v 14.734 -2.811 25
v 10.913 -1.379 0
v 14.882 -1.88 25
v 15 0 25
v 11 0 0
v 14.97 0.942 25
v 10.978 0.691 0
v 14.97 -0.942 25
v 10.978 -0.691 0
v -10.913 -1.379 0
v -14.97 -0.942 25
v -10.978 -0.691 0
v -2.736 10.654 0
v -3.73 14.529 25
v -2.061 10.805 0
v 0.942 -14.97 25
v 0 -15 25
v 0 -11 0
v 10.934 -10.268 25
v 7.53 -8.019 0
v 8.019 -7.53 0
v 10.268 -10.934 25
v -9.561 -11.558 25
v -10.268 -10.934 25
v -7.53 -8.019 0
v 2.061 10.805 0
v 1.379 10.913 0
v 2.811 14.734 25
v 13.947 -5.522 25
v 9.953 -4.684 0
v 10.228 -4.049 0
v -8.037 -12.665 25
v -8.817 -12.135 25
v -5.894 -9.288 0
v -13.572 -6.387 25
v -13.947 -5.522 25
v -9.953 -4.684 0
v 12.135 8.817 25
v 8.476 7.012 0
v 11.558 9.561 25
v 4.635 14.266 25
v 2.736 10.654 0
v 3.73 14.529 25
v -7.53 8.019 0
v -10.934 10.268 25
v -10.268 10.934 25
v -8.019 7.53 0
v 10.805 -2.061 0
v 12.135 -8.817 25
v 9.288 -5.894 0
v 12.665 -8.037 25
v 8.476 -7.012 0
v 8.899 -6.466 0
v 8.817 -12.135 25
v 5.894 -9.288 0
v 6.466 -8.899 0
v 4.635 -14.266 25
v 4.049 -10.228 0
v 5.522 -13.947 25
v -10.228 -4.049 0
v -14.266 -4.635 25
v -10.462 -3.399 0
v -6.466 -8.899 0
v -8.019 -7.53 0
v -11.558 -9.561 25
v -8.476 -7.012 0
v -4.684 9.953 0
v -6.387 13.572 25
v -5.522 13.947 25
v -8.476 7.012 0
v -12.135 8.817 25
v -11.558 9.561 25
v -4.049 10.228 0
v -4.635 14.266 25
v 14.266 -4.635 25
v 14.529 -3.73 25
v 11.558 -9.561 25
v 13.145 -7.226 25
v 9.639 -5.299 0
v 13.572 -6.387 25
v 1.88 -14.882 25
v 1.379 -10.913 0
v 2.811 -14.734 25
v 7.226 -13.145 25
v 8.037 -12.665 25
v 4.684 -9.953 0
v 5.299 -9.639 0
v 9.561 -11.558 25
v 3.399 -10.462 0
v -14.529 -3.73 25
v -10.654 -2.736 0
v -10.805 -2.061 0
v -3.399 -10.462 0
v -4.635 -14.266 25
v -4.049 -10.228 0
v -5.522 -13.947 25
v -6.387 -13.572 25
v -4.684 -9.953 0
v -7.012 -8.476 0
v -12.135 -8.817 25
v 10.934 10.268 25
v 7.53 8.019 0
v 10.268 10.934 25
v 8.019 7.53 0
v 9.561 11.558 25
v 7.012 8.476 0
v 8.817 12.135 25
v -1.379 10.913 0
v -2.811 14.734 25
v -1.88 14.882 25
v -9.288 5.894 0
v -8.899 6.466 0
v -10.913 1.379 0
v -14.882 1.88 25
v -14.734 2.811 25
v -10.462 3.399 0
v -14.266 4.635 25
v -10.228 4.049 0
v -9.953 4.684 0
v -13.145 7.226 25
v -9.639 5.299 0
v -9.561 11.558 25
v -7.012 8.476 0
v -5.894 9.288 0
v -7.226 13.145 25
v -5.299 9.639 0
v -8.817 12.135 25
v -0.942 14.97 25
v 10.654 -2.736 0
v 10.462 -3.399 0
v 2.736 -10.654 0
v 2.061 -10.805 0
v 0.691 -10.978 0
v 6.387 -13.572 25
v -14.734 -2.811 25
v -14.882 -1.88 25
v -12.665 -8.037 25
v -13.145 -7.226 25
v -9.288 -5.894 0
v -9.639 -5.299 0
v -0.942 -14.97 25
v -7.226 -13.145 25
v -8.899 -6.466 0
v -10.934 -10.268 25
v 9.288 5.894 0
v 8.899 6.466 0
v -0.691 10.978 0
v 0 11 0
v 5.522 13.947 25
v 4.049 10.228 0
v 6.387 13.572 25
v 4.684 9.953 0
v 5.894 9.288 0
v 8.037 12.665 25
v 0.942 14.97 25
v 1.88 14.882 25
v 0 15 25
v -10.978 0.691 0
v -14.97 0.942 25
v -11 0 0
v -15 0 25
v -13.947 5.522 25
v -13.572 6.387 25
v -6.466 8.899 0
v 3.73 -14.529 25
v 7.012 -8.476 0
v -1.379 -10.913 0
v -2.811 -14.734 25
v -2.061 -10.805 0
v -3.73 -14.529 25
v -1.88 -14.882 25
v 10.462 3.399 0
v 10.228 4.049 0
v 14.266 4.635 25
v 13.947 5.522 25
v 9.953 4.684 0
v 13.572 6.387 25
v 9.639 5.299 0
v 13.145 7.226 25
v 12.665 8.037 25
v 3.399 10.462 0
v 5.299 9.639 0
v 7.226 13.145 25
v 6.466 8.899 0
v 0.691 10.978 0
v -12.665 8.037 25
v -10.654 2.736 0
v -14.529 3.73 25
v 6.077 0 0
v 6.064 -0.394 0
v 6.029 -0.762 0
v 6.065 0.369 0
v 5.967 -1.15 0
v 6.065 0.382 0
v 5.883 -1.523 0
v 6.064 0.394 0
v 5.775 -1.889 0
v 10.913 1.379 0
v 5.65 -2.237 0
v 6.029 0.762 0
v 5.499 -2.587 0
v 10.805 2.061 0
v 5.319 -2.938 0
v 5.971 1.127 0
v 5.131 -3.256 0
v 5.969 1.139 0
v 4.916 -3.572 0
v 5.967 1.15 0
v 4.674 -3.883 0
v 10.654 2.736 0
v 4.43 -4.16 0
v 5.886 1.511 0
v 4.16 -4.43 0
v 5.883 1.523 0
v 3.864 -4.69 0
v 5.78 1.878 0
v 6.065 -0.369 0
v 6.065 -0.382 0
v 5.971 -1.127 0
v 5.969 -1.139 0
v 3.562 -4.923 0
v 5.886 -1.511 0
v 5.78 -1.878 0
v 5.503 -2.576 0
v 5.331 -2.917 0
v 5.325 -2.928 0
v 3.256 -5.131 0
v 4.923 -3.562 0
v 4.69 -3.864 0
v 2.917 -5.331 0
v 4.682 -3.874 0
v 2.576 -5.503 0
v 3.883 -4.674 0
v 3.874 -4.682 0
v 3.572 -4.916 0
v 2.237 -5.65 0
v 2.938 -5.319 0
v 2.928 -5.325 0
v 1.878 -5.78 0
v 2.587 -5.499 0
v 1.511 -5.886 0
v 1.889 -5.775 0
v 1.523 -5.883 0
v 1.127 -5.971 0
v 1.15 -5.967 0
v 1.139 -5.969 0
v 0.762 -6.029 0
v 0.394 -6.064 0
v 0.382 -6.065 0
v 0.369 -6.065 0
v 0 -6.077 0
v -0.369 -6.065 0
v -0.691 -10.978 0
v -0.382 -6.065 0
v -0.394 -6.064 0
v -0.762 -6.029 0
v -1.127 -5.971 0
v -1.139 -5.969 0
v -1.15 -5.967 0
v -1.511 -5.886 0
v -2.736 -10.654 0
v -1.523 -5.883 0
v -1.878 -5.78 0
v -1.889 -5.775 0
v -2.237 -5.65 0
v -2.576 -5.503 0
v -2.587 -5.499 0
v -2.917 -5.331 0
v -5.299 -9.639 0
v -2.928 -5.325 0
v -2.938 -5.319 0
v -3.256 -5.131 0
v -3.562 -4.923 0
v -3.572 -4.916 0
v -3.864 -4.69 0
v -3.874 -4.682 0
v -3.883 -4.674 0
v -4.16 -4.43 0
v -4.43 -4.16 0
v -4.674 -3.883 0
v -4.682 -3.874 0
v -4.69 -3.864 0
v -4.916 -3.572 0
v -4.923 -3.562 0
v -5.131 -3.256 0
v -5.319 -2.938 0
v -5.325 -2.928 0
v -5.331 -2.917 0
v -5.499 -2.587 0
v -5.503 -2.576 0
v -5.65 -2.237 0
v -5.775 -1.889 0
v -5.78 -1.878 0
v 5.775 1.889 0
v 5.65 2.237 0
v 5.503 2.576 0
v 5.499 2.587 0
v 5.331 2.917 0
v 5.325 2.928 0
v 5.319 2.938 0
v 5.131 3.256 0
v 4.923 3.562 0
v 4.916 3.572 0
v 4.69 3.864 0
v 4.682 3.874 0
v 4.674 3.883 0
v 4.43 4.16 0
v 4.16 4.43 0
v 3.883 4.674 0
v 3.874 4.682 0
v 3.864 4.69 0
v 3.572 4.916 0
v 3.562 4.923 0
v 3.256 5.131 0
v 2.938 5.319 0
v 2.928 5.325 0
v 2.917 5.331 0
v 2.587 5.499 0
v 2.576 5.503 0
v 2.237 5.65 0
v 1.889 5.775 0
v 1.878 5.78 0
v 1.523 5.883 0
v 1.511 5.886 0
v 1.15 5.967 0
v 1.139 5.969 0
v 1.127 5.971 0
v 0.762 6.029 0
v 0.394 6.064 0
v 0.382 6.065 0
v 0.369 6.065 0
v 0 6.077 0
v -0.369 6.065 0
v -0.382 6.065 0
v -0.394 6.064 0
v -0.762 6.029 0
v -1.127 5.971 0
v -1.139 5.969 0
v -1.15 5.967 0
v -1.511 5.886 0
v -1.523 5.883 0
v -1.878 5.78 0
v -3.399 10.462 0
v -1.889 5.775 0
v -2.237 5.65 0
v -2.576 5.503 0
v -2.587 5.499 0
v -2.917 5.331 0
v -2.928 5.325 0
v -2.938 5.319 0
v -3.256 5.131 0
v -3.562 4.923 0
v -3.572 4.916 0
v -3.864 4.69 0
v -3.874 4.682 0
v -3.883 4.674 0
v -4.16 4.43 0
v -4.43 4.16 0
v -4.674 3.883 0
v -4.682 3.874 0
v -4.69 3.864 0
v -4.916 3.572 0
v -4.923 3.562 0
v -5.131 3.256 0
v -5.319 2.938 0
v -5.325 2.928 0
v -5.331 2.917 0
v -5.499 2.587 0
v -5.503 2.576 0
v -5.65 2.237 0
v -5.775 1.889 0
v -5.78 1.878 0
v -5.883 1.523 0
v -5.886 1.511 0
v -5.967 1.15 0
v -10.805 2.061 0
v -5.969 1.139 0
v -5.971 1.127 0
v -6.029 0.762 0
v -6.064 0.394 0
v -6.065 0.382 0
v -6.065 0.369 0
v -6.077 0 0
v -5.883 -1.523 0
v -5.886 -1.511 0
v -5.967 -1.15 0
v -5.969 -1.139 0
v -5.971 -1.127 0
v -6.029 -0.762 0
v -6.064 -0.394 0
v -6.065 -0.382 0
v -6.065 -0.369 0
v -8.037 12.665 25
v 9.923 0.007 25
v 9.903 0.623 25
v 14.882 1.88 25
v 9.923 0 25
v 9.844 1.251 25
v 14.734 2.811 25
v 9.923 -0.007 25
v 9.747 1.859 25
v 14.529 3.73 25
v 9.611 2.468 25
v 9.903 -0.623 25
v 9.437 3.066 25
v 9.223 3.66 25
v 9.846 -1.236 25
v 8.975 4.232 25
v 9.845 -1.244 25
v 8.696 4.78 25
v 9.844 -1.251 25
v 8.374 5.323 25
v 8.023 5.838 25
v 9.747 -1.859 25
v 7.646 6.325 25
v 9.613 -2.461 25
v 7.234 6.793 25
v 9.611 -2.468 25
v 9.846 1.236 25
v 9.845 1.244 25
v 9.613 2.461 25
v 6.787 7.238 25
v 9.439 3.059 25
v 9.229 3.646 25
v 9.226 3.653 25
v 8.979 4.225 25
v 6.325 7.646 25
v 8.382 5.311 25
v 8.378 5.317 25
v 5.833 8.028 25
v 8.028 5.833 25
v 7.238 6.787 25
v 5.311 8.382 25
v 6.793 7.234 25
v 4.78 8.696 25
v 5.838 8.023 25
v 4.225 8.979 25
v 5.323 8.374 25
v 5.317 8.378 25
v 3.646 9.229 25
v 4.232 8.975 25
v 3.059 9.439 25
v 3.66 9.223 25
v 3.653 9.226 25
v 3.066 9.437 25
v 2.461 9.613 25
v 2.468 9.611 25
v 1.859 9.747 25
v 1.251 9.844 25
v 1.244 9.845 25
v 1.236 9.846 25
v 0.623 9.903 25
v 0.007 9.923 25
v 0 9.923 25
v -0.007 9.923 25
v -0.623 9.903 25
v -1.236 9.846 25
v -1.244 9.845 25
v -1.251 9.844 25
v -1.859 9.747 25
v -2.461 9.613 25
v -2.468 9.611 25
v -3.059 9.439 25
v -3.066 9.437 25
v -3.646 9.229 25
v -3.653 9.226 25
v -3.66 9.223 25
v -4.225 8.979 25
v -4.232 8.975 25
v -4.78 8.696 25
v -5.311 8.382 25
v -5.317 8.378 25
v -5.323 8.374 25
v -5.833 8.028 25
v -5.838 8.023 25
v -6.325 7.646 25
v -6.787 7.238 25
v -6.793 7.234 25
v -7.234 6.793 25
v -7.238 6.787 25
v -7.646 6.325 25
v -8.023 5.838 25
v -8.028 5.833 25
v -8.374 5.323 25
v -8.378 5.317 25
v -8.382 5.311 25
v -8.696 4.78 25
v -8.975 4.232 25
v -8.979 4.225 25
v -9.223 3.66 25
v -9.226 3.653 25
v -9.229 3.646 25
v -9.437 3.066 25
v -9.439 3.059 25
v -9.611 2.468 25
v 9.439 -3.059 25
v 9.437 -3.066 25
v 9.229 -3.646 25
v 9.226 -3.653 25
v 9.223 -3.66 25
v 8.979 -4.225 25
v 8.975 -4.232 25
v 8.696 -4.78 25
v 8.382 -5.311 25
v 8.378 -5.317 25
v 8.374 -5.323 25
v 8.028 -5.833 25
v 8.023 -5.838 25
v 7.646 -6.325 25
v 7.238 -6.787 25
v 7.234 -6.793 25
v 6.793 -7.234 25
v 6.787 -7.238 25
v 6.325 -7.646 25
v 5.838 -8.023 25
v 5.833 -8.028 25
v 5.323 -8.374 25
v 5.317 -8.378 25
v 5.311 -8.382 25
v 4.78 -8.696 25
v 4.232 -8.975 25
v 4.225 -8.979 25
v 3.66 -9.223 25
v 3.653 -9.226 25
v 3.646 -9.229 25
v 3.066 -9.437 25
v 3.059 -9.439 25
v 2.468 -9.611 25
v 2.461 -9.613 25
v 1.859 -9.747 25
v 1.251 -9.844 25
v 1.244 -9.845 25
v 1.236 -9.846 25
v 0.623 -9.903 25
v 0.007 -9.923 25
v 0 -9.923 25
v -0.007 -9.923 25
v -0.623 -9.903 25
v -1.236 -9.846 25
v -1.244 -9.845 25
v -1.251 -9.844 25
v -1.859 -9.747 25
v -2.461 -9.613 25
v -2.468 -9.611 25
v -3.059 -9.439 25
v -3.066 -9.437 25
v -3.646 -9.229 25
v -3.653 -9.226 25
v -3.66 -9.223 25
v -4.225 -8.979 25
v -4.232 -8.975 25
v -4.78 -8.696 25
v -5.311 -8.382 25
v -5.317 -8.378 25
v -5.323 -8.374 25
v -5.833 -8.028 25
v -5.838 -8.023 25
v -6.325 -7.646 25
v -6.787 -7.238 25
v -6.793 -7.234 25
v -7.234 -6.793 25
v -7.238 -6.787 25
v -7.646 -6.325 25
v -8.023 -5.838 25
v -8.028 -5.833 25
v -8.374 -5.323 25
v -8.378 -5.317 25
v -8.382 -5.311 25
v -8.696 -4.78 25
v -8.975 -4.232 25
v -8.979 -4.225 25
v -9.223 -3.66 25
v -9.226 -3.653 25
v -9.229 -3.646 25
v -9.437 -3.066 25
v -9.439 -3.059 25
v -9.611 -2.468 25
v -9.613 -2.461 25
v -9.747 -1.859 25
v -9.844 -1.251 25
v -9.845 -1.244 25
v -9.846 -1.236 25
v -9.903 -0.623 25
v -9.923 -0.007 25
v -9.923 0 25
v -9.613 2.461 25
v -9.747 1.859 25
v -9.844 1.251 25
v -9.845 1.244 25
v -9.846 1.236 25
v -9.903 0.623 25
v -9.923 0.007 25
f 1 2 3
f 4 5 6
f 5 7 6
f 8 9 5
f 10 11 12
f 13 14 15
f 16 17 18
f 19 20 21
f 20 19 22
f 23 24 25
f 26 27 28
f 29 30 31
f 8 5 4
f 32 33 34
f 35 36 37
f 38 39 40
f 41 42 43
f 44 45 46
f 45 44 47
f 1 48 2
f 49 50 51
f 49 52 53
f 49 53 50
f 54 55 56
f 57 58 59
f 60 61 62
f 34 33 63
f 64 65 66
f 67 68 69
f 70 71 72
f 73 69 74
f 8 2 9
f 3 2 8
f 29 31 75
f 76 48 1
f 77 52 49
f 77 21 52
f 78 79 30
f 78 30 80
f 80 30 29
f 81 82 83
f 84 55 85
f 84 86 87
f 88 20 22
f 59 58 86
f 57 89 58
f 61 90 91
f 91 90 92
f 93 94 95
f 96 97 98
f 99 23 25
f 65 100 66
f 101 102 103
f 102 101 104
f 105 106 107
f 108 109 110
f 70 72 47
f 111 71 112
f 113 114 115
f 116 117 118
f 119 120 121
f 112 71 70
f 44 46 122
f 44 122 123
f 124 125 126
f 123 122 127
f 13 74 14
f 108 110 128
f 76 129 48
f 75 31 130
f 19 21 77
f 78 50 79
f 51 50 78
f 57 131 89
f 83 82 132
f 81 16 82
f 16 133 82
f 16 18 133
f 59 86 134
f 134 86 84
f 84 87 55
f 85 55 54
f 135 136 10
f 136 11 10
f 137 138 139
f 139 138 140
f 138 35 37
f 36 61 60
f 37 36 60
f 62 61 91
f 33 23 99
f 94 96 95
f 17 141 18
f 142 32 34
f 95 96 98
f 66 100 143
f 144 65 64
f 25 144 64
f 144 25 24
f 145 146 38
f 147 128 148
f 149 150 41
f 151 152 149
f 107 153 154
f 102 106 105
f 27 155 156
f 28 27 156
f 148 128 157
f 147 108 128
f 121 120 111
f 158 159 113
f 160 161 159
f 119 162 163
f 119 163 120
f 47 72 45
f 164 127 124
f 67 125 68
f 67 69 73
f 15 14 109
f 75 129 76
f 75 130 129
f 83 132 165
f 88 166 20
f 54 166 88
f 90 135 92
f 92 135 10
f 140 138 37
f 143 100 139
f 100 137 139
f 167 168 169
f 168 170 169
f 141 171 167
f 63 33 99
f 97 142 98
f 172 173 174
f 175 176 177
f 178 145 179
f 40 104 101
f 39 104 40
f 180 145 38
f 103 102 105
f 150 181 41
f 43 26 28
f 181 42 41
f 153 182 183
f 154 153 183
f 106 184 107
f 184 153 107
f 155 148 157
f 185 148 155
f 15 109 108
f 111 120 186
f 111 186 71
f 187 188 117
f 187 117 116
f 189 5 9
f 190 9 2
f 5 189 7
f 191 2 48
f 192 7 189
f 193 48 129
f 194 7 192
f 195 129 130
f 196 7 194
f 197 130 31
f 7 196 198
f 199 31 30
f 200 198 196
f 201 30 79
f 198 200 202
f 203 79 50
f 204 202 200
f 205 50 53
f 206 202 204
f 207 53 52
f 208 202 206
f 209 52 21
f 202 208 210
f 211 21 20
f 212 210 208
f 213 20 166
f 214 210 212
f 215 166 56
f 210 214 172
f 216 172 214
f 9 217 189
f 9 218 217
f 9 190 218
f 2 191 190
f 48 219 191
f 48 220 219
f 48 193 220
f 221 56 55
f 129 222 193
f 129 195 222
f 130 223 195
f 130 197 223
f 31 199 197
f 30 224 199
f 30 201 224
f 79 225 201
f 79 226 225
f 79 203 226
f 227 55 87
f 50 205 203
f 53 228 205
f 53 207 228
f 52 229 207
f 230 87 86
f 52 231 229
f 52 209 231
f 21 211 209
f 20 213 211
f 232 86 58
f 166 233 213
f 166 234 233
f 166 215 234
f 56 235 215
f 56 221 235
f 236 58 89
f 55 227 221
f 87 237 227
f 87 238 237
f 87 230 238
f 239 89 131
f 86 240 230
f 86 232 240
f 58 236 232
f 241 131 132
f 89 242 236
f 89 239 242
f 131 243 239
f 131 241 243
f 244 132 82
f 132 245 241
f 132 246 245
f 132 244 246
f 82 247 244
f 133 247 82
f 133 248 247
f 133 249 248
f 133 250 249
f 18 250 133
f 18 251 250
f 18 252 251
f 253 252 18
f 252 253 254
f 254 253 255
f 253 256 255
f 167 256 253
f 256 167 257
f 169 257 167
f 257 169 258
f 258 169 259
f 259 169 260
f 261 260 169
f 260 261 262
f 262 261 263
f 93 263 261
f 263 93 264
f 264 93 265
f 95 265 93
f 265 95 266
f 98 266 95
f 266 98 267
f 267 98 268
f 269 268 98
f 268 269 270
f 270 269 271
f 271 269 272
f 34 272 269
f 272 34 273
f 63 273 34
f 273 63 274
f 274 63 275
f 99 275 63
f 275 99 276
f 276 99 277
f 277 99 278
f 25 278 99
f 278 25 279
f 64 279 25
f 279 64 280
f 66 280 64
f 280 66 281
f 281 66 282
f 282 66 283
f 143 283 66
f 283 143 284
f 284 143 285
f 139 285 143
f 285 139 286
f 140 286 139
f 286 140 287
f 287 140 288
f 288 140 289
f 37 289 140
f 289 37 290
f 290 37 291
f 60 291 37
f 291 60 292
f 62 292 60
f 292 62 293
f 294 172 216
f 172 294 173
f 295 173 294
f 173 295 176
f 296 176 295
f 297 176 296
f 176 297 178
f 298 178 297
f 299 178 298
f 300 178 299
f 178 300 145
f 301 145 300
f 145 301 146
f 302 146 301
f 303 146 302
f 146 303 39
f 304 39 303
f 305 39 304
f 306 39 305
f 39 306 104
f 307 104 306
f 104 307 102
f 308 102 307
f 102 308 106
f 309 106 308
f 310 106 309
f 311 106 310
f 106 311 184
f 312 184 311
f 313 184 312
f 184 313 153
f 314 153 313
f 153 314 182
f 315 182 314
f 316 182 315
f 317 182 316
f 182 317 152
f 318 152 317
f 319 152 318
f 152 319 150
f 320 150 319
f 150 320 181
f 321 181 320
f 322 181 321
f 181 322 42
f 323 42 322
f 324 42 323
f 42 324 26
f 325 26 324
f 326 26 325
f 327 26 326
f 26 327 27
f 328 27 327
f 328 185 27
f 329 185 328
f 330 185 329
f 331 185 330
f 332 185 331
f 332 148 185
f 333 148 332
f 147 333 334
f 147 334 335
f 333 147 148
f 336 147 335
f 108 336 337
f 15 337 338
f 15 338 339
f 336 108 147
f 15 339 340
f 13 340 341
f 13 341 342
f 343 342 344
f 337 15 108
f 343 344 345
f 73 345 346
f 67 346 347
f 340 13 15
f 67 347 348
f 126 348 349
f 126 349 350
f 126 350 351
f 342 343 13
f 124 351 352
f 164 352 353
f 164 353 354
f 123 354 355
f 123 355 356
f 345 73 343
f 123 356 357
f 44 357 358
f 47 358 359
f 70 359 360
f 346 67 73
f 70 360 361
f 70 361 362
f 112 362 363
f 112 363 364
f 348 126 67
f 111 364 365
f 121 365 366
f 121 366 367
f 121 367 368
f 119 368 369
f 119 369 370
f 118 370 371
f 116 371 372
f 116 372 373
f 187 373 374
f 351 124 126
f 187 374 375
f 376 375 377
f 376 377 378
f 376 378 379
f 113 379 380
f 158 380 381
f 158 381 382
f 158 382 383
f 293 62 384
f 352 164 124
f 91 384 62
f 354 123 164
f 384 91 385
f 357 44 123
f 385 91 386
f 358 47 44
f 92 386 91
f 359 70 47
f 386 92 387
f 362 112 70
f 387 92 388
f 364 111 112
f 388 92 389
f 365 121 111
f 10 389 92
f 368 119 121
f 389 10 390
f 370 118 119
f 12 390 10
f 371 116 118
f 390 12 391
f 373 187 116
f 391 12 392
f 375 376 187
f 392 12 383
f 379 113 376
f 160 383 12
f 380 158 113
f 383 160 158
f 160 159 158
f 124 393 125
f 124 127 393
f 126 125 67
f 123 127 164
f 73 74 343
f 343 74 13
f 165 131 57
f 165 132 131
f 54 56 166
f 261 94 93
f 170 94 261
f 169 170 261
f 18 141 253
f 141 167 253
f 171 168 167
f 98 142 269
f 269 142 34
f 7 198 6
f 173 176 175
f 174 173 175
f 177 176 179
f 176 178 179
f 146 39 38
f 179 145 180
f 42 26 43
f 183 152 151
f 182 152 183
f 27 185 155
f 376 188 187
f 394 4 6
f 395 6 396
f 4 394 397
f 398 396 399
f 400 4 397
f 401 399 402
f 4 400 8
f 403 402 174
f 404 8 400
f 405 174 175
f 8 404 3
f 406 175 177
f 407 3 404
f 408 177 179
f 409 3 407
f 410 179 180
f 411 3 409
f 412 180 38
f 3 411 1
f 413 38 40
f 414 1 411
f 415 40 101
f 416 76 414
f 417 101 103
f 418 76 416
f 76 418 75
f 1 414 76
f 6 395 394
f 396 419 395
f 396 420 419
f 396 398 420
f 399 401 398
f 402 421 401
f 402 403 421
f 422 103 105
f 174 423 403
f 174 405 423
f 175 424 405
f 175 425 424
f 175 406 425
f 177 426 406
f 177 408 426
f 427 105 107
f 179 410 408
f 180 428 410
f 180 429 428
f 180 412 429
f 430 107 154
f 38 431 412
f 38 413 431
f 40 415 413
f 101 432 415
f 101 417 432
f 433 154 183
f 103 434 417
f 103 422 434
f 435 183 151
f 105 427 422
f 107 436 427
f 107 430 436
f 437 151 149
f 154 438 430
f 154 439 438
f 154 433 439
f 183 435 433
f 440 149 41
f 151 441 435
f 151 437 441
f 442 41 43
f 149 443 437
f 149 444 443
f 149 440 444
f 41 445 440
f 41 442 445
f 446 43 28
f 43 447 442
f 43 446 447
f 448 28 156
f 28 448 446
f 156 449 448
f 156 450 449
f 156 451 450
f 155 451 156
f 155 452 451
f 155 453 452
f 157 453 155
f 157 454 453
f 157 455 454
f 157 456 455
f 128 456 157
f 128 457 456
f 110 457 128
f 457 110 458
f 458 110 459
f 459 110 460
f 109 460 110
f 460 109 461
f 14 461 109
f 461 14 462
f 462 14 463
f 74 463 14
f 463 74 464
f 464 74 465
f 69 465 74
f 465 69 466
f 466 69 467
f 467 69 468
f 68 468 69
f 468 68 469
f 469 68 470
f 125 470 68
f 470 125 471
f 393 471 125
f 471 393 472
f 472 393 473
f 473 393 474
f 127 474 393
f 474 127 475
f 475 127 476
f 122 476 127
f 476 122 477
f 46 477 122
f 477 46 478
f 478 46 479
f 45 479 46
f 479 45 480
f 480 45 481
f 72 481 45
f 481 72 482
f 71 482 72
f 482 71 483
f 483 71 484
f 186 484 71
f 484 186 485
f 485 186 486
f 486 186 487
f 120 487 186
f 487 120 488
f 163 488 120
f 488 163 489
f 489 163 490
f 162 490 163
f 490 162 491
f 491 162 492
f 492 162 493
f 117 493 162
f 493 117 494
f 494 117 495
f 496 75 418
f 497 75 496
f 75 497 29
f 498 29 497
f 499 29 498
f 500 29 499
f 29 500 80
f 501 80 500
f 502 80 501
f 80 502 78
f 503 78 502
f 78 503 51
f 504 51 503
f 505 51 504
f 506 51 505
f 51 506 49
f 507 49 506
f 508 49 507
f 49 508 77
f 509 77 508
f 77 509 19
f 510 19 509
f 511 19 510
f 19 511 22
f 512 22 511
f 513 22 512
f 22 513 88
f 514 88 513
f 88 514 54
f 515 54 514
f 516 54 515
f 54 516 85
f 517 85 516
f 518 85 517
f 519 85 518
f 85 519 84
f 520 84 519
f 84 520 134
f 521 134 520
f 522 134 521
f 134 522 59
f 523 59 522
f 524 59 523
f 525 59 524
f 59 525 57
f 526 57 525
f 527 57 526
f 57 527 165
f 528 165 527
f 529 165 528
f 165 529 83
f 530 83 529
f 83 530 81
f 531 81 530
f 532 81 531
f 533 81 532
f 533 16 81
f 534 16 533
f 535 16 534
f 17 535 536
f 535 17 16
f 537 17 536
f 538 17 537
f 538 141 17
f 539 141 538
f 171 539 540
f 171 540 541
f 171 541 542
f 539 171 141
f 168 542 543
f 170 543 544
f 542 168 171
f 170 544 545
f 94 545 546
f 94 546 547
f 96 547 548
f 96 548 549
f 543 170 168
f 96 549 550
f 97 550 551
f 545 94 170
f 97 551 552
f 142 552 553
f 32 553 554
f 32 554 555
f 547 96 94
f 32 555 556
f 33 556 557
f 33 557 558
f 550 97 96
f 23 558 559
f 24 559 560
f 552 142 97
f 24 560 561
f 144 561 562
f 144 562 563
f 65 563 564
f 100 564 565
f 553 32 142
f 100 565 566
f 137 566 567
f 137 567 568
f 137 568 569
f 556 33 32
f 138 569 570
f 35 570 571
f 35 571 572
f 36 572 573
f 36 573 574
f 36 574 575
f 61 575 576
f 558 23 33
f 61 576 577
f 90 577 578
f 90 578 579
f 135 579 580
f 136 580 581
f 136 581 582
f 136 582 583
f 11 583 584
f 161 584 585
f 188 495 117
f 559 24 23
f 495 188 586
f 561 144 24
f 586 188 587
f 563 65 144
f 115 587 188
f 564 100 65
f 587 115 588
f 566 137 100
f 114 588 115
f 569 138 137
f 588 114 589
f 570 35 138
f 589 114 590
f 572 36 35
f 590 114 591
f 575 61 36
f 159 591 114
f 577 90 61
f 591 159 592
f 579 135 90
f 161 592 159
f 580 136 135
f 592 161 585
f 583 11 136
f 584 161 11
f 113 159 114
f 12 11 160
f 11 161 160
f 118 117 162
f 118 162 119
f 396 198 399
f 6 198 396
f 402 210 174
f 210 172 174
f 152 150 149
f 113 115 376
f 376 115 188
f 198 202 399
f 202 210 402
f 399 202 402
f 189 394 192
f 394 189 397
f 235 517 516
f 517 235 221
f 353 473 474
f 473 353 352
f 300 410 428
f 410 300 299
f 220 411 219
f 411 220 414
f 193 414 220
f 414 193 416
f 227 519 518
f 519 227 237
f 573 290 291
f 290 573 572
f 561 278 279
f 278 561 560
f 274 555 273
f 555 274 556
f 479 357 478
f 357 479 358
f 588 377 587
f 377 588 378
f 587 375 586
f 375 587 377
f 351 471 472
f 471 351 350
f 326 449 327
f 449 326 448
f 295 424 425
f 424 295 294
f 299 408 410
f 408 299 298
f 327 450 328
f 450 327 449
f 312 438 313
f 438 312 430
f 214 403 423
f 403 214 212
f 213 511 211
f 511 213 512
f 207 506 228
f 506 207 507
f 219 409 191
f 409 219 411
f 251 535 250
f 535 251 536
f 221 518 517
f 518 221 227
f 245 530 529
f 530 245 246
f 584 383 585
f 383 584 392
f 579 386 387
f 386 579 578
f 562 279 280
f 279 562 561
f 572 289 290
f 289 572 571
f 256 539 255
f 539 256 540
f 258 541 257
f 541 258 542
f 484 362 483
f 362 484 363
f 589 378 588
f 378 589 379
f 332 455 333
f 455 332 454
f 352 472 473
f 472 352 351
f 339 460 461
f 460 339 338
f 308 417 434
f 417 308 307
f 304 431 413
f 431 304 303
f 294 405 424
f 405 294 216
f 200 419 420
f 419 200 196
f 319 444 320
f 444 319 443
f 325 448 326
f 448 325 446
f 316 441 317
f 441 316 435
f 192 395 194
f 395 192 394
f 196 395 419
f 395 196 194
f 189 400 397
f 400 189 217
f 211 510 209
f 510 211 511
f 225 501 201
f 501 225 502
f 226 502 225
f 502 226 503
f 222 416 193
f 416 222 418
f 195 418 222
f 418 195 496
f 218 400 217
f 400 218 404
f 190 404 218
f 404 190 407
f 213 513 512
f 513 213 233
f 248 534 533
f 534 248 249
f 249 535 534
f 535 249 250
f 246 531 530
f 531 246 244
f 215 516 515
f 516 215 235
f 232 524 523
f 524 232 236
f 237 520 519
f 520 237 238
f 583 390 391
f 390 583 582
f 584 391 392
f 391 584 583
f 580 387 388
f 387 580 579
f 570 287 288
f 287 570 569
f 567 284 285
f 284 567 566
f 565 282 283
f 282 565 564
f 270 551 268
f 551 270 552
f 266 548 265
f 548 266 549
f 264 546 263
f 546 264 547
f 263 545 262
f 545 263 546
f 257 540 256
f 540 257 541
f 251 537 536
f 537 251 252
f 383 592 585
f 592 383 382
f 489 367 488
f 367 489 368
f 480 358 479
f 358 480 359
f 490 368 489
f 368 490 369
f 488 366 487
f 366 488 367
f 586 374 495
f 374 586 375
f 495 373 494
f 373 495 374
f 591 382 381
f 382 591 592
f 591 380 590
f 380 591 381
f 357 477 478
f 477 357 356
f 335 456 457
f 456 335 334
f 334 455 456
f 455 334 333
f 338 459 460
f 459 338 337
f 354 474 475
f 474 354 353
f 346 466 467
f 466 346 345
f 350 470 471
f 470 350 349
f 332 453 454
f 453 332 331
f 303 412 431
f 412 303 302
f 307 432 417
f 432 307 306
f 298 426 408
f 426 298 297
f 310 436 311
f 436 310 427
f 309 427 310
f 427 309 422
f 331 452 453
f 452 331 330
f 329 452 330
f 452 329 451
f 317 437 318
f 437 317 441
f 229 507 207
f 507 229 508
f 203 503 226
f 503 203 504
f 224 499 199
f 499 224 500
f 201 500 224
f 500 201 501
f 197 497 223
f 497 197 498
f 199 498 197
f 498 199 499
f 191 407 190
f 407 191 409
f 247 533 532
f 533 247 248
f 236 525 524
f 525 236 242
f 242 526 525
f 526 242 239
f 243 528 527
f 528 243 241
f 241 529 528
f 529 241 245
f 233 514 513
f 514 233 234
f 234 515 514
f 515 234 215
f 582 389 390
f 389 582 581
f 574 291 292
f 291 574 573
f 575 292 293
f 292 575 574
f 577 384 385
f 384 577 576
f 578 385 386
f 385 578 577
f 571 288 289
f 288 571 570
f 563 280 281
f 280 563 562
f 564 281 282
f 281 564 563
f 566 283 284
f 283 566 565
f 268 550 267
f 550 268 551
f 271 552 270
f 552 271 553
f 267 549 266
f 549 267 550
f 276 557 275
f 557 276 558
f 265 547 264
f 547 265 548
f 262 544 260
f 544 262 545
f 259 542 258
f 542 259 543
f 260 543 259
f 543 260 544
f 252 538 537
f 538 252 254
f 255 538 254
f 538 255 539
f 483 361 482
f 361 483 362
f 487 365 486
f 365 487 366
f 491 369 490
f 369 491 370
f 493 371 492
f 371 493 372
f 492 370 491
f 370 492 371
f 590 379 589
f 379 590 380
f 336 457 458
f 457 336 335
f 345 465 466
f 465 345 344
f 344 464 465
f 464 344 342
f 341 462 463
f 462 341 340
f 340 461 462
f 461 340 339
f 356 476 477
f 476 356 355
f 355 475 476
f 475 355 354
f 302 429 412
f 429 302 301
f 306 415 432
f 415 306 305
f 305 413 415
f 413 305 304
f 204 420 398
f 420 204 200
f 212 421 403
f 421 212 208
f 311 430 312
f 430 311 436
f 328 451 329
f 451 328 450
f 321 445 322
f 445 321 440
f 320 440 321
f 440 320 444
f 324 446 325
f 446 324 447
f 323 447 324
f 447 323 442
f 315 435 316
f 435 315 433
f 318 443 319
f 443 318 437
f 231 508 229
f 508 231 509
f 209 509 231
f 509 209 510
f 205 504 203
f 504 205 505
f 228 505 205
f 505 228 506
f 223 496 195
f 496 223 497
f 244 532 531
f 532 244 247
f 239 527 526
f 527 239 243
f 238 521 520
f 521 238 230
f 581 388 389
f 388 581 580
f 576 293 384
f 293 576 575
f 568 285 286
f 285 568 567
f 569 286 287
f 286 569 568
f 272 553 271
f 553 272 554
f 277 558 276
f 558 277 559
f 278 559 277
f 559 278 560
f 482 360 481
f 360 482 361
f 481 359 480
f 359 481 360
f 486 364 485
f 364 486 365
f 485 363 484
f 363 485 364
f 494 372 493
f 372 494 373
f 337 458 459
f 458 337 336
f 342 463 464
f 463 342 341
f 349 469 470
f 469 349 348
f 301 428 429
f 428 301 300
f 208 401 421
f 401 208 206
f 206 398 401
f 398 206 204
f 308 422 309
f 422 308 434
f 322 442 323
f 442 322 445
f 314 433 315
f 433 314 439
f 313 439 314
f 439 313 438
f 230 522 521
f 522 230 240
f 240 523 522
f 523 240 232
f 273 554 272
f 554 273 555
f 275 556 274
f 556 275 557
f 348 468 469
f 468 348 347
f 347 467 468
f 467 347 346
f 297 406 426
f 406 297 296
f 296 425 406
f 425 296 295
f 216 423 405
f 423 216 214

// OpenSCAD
// Andre Betz
// github@AndreBetz.de

// Form zum Aussgiessen mit Silikon

WandDicke   = 5;
StopfenD1   = 12;
StopfenD2   = 20;
StopfenH    = 25;
$fn=100;

difference()
{
    cylinder(r1=StopfenD1/2+WandDicke,r2=StopfenD2/2+WandDicke,StopfenH);
    translate([0,0,-.5])
        cylinder(r1=StopfenD1/2,r2=StopfenD2/2,StopfenH+1);
}
